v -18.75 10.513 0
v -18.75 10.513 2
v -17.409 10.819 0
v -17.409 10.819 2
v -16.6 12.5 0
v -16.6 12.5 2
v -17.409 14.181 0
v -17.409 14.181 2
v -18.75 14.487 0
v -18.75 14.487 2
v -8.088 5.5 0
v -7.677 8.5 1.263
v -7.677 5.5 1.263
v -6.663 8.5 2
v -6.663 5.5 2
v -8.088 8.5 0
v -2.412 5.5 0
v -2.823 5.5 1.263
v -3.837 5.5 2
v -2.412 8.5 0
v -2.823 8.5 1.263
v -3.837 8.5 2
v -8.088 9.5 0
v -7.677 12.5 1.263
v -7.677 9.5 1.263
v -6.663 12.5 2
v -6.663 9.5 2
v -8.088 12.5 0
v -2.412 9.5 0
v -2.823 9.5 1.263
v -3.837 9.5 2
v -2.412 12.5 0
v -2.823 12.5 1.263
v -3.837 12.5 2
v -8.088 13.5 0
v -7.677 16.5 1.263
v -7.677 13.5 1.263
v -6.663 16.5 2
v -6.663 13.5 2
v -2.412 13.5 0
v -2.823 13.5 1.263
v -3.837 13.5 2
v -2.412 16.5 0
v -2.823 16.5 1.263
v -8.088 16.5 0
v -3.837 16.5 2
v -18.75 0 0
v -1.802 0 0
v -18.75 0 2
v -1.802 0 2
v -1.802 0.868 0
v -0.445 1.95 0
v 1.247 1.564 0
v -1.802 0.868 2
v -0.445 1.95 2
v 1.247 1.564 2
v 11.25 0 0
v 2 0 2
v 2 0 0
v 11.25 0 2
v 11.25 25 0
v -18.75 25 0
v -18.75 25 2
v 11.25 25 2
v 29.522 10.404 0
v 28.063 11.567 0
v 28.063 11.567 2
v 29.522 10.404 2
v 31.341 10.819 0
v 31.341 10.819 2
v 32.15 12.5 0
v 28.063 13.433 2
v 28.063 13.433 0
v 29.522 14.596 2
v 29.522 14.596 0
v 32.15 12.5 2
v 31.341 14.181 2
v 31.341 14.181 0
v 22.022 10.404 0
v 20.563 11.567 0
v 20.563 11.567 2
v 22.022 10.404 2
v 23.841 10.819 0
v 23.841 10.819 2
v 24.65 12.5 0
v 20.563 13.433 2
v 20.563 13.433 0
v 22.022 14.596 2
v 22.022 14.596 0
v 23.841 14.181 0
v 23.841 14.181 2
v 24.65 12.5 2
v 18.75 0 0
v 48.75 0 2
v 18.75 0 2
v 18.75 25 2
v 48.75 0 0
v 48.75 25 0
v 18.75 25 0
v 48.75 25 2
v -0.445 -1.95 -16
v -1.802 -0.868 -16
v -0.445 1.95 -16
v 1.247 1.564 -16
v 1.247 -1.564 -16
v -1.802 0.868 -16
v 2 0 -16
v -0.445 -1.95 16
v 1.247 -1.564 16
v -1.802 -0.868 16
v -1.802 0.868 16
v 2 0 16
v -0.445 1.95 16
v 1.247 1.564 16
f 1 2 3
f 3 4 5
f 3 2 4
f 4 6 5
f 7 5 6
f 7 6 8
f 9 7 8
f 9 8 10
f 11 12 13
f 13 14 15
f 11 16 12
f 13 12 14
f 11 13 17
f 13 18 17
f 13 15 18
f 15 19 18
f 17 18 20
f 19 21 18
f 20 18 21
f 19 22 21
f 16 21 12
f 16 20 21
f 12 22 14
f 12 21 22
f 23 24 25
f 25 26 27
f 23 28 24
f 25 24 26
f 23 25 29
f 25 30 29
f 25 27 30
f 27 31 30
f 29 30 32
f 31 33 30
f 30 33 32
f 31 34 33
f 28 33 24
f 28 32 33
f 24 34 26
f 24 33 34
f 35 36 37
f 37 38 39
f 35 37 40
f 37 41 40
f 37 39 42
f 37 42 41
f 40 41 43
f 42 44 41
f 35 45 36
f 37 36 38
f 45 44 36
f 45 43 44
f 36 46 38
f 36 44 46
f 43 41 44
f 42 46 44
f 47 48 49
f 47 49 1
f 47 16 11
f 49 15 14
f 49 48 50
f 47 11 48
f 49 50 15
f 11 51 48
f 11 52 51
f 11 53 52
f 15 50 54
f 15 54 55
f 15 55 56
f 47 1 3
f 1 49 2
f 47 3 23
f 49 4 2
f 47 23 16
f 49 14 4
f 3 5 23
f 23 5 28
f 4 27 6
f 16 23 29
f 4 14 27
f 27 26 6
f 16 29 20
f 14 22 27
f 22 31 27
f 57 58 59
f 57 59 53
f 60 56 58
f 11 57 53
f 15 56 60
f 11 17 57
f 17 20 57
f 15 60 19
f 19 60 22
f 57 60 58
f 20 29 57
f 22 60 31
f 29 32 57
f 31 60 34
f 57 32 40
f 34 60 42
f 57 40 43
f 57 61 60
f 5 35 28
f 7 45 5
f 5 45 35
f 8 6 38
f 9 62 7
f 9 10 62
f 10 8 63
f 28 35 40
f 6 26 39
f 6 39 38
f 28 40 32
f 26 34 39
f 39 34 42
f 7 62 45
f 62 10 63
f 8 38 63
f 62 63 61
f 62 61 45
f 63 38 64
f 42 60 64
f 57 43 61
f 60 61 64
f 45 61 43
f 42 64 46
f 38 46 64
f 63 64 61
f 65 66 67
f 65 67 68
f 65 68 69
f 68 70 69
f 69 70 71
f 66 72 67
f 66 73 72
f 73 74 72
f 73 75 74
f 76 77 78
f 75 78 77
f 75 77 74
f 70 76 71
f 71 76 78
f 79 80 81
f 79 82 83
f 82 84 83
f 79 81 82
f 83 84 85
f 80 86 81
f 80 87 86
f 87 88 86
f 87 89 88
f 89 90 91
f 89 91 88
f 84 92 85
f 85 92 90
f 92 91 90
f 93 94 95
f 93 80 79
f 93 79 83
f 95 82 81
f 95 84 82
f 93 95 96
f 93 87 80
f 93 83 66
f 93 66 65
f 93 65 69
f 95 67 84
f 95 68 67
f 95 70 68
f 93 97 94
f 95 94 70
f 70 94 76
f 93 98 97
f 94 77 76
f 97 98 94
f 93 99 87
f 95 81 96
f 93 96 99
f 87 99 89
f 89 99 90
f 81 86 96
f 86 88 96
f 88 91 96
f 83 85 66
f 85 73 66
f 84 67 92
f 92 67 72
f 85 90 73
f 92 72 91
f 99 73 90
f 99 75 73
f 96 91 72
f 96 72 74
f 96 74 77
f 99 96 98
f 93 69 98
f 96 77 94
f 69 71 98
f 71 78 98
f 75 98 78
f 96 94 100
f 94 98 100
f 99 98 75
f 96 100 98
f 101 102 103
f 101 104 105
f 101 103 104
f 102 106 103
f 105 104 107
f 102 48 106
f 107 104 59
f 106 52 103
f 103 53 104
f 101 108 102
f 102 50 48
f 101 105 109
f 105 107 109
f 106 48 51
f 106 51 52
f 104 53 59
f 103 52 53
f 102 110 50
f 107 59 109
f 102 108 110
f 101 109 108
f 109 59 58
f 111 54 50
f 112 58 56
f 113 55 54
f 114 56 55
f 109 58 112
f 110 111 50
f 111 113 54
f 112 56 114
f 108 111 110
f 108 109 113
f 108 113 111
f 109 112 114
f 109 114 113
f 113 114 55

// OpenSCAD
// 家具用小型バット蝶番 (butt hinge)

// 寸法
plate_width = 30;
plate_height = 25;
plate_thickness = 2;
pin_diameter = 4;
pin_length = 32;
knuckle_outer_diameter = 8;
knuckle_inner_diameter = pin_diameter + 0.3;
knuckle_length = 6;
screw_hole_diameter = 3.2;
screw_hole_depth = 1;
screw_hole_counterbore_diameter = 6;
screw_hole_pitch = 8;

// knuckle 配置
num_left_knuckles = 3;
num_right_knuckles = 2;
knuckle_offset = plate_width / (num_left_knuckles + num_right_knuckles -1);


module left_plate() {
  difference() {
    // 板本体
    cube([plate_width, plate_height, plate_thickness]);

    // knuckle 穴
    for (i = [0, knuckle_offset, 2 * knuckle_offset]) {
      translate([i - plate_width/2, plate_height / 2, -1])
        cylinder(h = plate_thickness + 2, r = knuckle_inner_diameter / 2);
    }

    // M3 皿穴
    for (i = [plate_height / 2 - screw_hole_pitch/2, plate_height / 2, plate_height / 2 + screw_hole_pitch/2]) {
      translate([plate_width/2 - 1.5 , i, -0.5])
        rotate([90,0,0])
          cylinder(h = plate_thickness+1, r=screw_hole_counterbore_diameter/2);
      translate([plate_width/2 - 1.5 , i, -0.5])
        rotate([90,0,0])
          cylinder(h = plate_thickness + screw_hole_depth, r = screw_hole_diameter / 2);

    }
  }
}

module right_plate() {
  difference() {
    // 板本体
    cube([plate_width, plate_height, plate_thickness]);

    // knuckle 穴
    for (i = [knuckle_offset/2, knuckle_offset * 3/2]) {
      translate([-i + plate_width/2, plate_height / 2, -1])
        cylinder(h = plate_thickness + 2, r = knuckle_inner_diameter / 2);
    }

    // M3 皿穴
    for (i = [plate_height / 2 - screw_hole_pitch/2, plate_height / 2, plate_height / 2 + screw_hole_pitch/2]) {
      translate([-plate_width/2 + 1.5 , i, -0.5])
        rotate([90,0,0])
          cylinder(h = plate_thickness+1, r=screw_hole_counterbore_diameter/2);
      translate([-plate_width/2 + 1.5 , i, -0.5])
        rotate([90,0,0])
          cylinder(h = plate_thickness + screw_hole_depth, r = screw_hole_diameter / 2);

    }
  }
}

module pin() {
  cylinder(h = pin_length, r = pin_diameter / 2);
}


// 完成品配置 (180° 開いた状態)
translate([-plate_width/2 - knuckle_offset/2 , 0, 0]) left_plate();
translate([plate_width/2 + knuckle_offset/2, 0, 0]) right_plate();
translate([0, 0, -pin_length / 2]) pin();
